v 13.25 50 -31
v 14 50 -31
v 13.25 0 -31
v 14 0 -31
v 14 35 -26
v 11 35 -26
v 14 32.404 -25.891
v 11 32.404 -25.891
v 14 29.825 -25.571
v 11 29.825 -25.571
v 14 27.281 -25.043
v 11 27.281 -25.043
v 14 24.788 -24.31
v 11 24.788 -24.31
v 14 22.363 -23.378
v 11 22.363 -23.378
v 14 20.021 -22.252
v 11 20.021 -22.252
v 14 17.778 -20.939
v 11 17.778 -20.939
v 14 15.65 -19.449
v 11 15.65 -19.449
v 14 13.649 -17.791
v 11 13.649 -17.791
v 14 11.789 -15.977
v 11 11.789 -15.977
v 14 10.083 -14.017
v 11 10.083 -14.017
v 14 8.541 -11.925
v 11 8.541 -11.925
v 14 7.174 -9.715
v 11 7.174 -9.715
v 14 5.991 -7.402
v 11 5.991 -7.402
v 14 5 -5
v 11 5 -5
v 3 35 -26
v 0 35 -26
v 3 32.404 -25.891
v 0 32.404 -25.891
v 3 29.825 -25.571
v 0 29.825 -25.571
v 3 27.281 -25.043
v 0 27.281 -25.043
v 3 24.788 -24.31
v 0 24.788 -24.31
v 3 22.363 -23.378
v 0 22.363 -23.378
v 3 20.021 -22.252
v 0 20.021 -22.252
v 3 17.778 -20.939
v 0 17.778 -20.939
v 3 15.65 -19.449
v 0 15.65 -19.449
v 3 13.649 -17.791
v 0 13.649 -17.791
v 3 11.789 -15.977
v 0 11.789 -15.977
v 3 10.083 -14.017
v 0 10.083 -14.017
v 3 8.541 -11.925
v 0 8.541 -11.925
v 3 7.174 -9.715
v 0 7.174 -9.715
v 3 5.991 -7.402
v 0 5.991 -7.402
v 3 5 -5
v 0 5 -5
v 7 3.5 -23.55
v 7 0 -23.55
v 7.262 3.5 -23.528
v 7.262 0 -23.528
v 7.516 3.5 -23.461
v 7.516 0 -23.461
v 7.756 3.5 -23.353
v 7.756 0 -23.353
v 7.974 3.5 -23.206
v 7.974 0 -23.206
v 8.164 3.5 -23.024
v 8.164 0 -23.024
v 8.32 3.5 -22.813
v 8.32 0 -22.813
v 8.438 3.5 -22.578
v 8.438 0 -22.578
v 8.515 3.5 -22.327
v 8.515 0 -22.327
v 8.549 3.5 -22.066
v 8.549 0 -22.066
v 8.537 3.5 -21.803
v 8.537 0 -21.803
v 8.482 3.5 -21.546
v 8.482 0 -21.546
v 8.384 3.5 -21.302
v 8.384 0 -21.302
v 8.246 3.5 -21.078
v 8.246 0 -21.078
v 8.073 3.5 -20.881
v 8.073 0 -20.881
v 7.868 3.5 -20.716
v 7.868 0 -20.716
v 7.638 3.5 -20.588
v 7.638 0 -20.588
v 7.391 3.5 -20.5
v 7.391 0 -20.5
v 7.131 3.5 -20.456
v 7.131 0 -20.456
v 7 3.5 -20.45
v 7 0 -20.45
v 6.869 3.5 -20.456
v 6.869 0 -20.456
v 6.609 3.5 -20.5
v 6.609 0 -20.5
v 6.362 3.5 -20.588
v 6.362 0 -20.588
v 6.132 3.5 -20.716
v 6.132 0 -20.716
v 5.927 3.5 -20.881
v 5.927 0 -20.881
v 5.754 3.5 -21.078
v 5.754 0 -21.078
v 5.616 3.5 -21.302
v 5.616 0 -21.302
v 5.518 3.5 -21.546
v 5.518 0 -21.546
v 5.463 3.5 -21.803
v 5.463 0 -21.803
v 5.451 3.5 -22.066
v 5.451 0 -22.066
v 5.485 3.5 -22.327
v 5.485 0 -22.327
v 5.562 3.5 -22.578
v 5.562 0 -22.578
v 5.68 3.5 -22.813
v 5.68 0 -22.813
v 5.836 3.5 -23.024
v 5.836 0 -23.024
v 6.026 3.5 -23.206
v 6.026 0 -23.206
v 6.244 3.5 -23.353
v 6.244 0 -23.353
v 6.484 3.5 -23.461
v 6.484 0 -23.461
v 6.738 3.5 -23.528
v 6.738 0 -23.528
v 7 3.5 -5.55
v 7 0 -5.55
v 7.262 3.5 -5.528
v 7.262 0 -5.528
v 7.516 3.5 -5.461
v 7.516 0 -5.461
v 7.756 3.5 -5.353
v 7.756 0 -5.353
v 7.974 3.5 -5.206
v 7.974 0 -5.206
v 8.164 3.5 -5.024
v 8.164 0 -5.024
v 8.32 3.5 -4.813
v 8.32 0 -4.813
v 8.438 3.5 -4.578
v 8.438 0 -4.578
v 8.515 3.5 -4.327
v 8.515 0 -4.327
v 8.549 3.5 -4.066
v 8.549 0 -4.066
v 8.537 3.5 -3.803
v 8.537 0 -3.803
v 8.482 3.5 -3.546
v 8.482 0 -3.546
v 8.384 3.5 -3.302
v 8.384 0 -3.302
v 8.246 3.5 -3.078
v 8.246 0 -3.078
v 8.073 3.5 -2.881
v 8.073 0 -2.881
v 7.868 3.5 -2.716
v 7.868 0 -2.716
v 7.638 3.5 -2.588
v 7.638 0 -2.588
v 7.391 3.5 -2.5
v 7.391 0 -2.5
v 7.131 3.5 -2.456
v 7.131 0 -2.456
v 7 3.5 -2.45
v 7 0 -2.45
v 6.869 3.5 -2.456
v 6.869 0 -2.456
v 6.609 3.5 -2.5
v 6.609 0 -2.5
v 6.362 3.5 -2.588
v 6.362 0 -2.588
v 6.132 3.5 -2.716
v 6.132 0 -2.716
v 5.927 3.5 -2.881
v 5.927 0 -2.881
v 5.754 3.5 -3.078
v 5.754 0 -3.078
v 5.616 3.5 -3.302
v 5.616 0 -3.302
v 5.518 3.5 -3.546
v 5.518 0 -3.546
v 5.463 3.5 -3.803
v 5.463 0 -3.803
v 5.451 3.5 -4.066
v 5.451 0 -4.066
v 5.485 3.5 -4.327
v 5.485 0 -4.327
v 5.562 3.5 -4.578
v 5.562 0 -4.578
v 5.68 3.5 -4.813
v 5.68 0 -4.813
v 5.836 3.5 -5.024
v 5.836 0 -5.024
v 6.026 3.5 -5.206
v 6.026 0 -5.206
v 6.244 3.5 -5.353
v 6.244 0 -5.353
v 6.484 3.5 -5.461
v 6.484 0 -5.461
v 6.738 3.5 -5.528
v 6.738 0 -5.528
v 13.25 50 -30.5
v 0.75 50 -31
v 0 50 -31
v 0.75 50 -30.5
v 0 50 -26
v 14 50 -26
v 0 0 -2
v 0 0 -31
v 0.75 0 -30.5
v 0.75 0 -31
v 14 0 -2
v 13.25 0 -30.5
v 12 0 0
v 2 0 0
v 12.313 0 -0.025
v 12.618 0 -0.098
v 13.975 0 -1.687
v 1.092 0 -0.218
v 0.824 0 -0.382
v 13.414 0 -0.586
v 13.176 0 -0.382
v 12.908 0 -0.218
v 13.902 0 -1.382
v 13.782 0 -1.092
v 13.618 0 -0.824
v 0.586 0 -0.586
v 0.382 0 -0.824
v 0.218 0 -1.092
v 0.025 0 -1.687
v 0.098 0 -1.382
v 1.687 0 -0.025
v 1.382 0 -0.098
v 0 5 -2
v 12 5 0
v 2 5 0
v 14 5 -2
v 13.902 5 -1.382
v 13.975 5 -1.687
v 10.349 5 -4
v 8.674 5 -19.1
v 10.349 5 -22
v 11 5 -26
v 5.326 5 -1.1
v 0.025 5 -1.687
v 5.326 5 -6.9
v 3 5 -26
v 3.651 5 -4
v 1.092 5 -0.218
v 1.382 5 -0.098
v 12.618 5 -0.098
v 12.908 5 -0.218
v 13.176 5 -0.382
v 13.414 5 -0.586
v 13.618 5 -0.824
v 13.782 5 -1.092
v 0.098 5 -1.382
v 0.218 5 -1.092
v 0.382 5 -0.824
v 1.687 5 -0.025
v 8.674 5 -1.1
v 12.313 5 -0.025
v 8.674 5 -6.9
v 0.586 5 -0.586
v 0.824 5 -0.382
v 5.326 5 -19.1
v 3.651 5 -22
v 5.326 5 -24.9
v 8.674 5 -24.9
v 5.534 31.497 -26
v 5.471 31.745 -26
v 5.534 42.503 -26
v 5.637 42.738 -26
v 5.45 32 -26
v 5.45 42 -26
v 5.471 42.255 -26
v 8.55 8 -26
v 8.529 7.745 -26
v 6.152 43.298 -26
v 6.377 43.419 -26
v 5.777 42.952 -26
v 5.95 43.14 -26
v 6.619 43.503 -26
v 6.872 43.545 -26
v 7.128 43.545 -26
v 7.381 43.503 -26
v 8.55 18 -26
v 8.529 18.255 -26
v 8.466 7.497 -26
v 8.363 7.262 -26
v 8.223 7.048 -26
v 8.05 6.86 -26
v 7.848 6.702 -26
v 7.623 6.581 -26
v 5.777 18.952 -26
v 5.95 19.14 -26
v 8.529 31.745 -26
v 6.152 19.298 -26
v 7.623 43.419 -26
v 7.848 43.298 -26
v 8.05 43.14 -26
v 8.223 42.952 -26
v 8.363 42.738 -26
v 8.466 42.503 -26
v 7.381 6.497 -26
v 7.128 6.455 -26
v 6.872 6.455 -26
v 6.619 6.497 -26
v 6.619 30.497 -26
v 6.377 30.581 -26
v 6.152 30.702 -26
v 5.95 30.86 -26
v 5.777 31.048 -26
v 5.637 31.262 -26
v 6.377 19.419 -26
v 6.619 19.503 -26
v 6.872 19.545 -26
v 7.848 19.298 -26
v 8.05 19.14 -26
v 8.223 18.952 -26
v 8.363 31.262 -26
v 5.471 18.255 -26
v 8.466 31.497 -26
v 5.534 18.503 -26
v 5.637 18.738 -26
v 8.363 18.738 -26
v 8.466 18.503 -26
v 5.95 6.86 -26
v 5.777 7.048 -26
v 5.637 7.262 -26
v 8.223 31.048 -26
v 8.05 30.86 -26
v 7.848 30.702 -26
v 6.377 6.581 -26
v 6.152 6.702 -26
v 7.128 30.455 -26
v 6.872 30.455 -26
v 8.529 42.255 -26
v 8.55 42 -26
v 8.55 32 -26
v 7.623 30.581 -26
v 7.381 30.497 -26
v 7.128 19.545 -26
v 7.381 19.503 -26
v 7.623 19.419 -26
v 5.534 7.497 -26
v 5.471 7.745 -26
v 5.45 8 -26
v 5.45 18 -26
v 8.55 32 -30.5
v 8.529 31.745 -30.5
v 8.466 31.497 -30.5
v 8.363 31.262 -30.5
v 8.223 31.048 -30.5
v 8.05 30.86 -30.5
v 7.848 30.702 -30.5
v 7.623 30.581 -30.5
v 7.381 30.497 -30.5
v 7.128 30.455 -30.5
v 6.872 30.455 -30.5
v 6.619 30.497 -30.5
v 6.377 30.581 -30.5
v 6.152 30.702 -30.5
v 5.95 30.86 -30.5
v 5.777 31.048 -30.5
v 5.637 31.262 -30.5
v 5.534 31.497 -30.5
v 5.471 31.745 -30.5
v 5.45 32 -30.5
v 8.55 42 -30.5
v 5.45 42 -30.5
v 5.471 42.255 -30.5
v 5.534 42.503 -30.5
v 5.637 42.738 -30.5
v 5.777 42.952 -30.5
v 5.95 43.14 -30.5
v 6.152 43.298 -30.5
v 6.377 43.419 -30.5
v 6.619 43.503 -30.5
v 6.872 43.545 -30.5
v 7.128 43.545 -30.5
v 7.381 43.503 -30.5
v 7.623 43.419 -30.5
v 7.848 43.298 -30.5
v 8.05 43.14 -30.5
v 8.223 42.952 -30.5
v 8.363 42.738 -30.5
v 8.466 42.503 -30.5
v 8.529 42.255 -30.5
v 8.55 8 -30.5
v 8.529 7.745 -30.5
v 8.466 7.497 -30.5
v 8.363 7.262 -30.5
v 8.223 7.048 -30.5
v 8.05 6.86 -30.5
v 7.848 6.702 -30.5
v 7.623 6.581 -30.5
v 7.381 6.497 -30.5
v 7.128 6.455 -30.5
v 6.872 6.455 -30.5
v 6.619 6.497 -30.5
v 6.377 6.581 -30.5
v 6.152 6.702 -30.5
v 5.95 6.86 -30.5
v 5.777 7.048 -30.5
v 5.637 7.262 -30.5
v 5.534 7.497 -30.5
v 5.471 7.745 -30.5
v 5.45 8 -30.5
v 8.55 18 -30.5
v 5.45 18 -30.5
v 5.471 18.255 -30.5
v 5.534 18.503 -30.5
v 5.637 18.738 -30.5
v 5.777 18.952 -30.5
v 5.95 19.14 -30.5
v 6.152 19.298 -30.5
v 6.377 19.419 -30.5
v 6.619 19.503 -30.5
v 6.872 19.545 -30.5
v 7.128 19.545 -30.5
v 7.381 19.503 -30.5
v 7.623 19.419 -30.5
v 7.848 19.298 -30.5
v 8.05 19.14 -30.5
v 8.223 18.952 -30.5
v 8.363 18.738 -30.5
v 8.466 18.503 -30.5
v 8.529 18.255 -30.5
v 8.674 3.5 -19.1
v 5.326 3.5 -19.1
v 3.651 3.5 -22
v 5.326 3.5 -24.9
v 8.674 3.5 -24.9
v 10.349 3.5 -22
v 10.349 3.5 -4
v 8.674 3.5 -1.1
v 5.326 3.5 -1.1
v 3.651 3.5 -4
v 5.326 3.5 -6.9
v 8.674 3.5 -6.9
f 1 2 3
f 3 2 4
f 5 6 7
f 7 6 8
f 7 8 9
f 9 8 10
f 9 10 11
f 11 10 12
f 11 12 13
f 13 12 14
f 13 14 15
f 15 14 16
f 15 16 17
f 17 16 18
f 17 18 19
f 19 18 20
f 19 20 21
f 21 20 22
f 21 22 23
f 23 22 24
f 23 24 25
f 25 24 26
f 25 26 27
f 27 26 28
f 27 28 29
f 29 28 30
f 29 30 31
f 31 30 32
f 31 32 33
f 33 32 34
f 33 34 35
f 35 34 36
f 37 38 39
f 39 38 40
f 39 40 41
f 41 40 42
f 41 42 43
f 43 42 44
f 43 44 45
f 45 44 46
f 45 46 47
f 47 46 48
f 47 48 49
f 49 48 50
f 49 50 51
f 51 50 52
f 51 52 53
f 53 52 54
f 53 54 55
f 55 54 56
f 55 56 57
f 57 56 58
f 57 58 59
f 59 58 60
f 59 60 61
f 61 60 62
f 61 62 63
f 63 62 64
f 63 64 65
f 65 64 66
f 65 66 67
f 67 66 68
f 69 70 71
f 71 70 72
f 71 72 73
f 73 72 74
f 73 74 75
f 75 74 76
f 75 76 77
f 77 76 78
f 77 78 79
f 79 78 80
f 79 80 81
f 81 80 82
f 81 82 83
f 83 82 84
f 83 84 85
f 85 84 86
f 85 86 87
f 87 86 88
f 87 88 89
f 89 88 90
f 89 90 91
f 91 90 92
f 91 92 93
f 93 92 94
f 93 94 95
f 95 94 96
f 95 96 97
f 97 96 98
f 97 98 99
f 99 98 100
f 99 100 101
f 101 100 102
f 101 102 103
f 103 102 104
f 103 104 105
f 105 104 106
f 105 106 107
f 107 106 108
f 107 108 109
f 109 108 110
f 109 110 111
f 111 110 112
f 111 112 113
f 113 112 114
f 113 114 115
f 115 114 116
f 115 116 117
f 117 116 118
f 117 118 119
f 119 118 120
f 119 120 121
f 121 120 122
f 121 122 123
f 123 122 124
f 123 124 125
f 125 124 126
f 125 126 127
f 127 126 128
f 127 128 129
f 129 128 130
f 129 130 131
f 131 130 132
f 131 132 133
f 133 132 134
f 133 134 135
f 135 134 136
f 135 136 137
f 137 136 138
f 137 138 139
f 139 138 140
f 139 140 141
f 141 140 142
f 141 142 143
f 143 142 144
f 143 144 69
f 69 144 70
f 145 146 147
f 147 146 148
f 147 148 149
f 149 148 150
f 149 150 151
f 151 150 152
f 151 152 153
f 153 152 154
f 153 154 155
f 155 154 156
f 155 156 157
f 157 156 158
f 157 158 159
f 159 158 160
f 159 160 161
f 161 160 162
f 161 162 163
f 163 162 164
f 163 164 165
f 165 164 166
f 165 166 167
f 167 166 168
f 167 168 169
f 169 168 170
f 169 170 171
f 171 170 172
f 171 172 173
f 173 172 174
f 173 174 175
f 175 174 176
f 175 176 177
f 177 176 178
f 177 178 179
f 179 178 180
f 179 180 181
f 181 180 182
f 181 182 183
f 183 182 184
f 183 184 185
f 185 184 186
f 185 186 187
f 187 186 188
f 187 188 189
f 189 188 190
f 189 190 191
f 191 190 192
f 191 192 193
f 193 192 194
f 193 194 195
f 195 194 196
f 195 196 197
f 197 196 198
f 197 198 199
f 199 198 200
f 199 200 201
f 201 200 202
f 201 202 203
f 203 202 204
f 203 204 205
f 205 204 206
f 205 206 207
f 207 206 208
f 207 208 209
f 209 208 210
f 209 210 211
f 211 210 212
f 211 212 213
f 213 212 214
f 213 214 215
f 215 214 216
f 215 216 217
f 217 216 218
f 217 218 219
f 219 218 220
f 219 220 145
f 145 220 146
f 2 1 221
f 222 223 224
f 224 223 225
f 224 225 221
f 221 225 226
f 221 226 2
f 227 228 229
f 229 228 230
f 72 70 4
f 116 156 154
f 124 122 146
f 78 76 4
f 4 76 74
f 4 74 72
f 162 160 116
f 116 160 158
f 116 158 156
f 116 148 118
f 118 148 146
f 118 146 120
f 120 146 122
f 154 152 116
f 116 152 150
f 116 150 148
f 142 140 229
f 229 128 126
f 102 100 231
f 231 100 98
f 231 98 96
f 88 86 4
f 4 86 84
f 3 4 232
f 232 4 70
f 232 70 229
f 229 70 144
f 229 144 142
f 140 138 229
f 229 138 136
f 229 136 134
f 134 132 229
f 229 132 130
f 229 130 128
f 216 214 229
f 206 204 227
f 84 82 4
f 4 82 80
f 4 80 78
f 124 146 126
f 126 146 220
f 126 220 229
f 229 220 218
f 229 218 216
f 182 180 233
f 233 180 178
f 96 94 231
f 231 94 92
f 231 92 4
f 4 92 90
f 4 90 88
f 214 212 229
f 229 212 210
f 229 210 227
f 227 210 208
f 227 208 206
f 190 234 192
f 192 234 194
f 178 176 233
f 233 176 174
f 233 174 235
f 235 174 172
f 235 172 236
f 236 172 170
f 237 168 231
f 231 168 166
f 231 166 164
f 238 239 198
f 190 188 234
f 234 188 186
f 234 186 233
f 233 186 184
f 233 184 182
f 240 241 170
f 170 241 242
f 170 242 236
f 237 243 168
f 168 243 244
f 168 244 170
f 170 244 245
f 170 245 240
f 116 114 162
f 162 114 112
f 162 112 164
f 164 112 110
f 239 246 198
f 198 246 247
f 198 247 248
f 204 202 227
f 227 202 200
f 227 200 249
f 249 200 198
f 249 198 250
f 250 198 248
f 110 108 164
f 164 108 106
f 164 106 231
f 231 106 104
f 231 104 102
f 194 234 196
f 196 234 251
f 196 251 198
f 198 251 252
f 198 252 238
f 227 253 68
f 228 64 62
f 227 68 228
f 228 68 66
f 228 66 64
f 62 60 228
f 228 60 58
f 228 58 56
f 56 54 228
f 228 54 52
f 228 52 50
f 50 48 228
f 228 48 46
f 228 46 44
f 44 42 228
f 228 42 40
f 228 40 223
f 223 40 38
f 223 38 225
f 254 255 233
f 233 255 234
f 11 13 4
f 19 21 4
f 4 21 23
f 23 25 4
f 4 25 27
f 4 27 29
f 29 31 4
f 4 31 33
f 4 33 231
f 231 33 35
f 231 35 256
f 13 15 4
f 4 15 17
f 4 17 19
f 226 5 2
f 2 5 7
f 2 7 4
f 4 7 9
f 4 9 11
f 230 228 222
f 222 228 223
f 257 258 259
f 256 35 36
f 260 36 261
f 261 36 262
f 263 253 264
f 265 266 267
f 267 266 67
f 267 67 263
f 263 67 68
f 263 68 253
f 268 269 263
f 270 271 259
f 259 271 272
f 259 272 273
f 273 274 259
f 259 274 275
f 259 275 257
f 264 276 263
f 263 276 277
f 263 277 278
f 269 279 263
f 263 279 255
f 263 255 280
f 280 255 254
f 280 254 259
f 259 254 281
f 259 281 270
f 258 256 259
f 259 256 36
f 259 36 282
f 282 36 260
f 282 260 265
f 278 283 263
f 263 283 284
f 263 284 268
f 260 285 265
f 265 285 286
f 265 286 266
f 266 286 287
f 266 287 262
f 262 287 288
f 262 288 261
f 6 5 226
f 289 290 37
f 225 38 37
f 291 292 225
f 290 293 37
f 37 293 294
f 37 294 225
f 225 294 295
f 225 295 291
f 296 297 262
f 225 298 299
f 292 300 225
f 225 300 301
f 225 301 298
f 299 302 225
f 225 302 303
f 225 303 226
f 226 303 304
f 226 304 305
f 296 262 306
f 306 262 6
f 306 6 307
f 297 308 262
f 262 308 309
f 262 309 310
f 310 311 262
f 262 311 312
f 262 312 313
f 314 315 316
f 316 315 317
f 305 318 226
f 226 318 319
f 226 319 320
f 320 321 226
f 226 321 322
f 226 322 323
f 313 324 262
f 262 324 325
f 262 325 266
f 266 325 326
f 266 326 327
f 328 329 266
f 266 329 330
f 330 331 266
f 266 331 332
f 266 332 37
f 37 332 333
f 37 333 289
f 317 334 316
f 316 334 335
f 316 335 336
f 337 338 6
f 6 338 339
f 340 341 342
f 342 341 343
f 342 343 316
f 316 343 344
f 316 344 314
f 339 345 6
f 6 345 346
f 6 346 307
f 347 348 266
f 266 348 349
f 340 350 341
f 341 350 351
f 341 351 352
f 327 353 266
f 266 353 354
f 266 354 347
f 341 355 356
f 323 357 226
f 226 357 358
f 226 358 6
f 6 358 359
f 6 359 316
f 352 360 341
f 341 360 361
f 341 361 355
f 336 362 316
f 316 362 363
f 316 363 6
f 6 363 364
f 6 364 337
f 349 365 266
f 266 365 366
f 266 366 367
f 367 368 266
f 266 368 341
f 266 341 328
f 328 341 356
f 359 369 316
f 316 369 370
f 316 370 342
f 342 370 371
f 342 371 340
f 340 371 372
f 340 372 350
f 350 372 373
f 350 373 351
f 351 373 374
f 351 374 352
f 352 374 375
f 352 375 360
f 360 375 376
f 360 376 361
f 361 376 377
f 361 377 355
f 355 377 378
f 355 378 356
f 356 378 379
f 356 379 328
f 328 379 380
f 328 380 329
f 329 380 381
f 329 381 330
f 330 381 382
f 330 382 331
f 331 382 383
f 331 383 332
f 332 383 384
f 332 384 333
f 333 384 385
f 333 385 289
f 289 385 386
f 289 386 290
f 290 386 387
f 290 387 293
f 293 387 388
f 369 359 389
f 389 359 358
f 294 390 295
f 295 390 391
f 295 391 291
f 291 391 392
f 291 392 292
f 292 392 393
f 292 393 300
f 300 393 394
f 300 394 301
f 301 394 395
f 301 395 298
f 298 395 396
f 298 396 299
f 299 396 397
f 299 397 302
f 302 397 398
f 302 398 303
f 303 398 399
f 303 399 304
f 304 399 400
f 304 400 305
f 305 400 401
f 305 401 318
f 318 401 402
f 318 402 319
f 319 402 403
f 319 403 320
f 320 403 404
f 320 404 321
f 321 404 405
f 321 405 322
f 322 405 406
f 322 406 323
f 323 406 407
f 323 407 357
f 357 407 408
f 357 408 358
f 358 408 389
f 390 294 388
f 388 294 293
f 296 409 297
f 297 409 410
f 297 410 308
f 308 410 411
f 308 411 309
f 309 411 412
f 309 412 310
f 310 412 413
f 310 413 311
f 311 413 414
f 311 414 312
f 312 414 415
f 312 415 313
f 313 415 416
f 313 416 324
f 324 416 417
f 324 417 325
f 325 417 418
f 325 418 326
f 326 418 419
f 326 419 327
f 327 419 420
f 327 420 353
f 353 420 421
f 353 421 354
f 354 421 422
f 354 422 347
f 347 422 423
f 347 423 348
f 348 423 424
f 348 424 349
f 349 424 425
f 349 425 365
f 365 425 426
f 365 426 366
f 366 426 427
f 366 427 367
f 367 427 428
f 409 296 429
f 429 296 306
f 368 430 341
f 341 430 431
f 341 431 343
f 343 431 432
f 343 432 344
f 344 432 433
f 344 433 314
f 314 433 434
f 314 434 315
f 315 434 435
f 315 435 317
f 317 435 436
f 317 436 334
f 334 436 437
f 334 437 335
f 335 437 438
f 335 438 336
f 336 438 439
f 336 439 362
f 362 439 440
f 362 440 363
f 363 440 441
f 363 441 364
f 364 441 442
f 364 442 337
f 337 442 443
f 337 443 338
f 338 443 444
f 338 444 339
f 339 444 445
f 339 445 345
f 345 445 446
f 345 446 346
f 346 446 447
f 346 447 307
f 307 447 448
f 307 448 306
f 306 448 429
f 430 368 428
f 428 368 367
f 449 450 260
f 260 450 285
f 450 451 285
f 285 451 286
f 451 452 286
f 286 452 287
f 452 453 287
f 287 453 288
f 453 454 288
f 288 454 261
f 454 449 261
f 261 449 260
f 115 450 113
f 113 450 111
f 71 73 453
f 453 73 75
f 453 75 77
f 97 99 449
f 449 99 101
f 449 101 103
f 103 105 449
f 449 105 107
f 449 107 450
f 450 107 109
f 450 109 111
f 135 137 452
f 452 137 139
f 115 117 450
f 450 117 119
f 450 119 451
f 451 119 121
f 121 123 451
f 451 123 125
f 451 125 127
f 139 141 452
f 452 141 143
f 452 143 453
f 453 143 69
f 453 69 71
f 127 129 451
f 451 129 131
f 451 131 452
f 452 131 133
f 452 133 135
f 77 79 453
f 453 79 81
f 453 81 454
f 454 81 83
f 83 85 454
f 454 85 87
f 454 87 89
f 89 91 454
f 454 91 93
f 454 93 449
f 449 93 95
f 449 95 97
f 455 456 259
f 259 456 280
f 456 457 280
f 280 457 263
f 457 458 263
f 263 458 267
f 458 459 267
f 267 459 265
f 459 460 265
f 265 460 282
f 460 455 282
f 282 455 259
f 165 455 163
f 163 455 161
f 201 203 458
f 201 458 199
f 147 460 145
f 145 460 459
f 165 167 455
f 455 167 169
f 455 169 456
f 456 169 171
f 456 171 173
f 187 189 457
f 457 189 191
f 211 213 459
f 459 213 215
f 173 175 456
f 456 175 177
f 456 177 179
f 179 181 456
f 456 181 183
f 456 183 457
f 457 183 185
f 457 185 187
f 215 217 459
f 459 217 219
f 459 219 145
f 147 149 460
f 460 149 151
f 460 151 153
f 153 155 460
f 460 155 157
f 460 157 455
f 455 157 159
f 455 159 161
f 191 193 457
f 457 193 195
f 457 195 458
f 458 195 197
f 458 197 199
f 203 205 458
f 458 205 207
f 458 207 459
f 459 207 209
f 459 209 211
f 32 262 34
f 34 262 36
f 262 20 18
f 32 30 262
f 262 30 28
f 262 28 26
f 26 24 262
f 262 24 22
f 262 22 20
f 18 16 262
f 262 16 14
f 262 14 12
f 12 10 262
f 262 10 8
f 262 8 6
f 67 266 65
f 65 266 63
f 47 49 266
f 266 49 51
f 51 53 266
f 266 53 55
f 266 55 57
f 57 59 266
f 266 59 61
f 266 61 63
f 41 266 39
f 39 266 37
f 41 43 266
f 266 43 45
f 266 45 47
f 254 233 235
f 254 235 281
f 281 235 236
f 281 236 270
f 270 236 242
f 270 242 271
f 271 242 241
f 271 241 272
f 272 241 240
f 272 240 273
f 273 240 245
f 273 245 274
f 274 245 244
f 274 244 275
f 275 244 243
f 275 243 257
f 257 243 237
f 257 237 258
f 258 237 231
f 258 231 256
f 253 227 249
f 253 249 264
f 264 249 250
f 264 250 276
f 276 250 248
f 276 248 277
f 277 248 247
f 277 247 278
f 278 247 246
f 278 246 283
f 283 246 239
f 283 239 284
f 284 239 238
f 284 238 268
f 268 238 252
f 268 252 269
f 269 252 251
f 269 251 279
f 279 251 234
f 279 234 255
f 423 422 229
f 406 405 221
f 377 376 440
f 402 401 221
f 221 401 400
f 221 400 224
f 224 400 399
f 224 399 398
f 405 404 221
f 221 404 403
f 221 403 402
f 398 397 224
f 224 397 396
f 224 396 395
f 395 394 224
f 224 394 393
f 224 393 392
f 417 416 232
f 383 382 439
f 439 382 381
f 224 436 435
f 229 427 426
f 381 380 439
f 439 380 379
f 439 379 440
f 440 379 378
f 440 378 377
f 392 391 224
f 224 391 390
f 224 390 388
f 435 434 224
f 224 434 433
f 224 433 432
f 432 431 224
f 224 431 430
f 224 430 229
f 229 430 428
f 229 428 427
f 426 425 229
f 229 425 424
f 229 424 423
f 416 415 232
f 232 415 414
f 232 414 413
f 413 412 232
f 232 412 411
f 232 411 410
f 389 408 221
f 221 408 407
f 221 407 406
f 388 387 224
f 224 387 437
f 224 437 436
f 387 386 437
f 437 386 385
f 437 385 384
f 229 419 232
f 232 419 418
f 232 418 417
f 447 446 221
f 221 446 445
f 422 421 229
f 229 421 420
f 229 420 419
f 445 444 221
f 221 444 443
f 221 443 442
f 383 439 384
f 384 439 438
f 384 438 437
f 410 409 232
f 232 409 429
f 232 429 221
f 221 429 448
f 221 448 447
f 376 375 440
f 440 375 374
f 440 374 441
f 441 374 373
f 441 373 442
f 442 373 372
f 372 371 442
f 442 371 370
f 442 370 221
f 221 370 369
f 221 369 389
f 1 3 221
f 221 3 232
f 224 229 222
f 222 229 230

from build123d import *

# Parameters (mm, degrees)
CROQUIS2_W              = 14
CROQUIS2_H              = 31
CROQUIS2_R              = 1.55
SALIENTE_EXTRUIR1_DEPTH = 50
CROQUIS3_W              = 26
CROQUIS3_H              = 45
CORTAR_EXTRUIR1_DEPTH   = 14
CORTAR_EXTRUIR2_DEPTH   = 5
CORTAR_EXTRUIR3_DEPTH   = 1.5
SALIENTE_EXTRUIR3_DEPTH = 14
CROQUIS7_OUTSIDE_W      = 28.094
CROQUIS7_OUTSIDE_H      = 45.094
CORTAR_EXTRUIR5_DEPTH   = 45
REDONDEO1_R             = 2
CROQUIS8_W              = 12.5
CROQUIS8_H              = 0.5
CORTAR_EXTRUIR6_DEPTH   = 50


with BuildPart() as part:
    # Croquis2 → Saliente-Extruir1 (new body)
    with BuildSketch(Plane(origin=(0, 0, 0), x_dir=(1, 0, 0), z_dir=(0, 1, 0))):
        with Locations((7, 15.5)):
            Rectangle(CROQUIS2_W, CROQUIS2_H)
        with Locations((7, 22)):
            Circle(CROQUIS2_R, mode=Mode.SUBTRACT)
        with Locations((7, 4)):
            Circle(CROQUIS2_R, mode=Mode.SUBTRACT)
    extrude(amount=SALIENTE_EXTRUIR1_DEPTH)

    # Croquis3 → Cortar-Extruir1 (cut)
    with BuildSketch(Plane.ZY):
        with Locations((-13, 27.5)):
            Rectangle(CROQUIS3_W, CROQUIS3_H)
    extrude(amount=-CORTAR_EXTRUIR1_DEPTH, mode=Mode.SUBTRACT)

    # Croquis4 → Cortar-Extruir2 (cut)
    with BuildSketch(Plane(origin=(0, 0, -31), x_dir=(-1, 0, 0), z_dir=(0, 0, -1))):
        with BuildLine():
            Line((-8.55, 8), (-8.55, 18))
            ThreePointArc((-8.55, 18), (-7, 19.55), (-5.45, 18))
            Line((-5.45, 18), (-5.45, 8))
            ThreePointArc((-5.45, 8), (-7, 6.45), (-8.55, 8))
        make_face()
        with BuildLine():
            Line((-8.55, 32), (-8.55, 42))
            ThreePointArc((-8.55, 42), (-7, 43.55), (-5.45, 42))
            Line((-5.45, 42), (-5.45, 32))
            ThreePointArc((-5.45, 32), (-7, 30.45), (-8.55, 32))
        make_face()
    extrude(amount=-CORTAR_EXTRUIR2_DEPTH, mode=Mode.SUBTRACT)

    # Croquis5 → Cortar-Extruir3 (cut)
    with BuildSketch(Plane(origin=(0, 5, 0), x_dir=(1, 0, 0), z_dir=(0, 1, 0))):
        Polygon((10.348631561, 4), (8.674315781, 6.9), (5.325684219, 6.9), (3.651368439, 4), (5.325684219, 1.1), (8.674315781, 1.1), align=None)
        Polygon((8.674315781, 19.1), (10.348631561, 22), (8.674315781, 24.9), (5.325684219, 24.9), (3.651368439, 22), (5.325684219, 19.1), align=None)
    extrude(amount=-CORTAR_EXTRUIR3_DEPTH, mode=Mode.SUBTRACT)

    # Croquis6 → Saliente-Extruir3 (add)
    with BuildSketch(Plane.ZY):
        with BuildLine():
            Line((-26, 5), (-26, 35))
            ThreePointArc((-26, 35), (-20.21590319, 16.698867767), (-5, 5))
            Line((-5, 5), (-26, 5))
        make_face()
    extrude(amount=-SALIENTE_EXTRUIR3_DEPTH)

    # Croquis7 outside → Cortar-Extruir5 (cut)
    with BuildSketch(Plane(origin=(0, 50, 0), x_dir=(1, 0, 0), z_dir=(0, 1, 0))):
        with Locations((7, 15.5)):
            Rectangle(CROQUIS7_OUTSIDE_W, CROQUIS7_OUTSIDE_H)
        Polygon((0, 26), (0, 0), (3, 0), (3, 26), (11, 26), (11, 0), (14, 0), (14, 26), (14, 31), (0, 31), align=None, mode=Mode.SUBTRACT)
    extrude(amount=-CORTAR_EXTRUIR5_DEPTH, mode=Mode.SUBTRACT)

    # Redondeo1
    redondeo1_edges = [part.edges().sort_by_distance(p)[0] for p in [
        (14, 2.5, 0),
        (0, 2.5, 0),
    ]]
    fillet(redondeo1_edges, radius=REDONDEO1_R)

    # Croquis8 → Cortar-Extruir6 (cut)
    with BuildSketch(Plane(origin=(0, 50, 0), x_dir=(1, 0, 0), z_dir=(0, 1, 0))):
        with Locations((7, 30.75)):
            Rectangle(CROQUIS8_W, CROQUIS8_H)
    extrude(amount=-CORTAR_EXTRUIR6_DEPTH, mode=Mode.SUBTRACT)


solid = part.part
